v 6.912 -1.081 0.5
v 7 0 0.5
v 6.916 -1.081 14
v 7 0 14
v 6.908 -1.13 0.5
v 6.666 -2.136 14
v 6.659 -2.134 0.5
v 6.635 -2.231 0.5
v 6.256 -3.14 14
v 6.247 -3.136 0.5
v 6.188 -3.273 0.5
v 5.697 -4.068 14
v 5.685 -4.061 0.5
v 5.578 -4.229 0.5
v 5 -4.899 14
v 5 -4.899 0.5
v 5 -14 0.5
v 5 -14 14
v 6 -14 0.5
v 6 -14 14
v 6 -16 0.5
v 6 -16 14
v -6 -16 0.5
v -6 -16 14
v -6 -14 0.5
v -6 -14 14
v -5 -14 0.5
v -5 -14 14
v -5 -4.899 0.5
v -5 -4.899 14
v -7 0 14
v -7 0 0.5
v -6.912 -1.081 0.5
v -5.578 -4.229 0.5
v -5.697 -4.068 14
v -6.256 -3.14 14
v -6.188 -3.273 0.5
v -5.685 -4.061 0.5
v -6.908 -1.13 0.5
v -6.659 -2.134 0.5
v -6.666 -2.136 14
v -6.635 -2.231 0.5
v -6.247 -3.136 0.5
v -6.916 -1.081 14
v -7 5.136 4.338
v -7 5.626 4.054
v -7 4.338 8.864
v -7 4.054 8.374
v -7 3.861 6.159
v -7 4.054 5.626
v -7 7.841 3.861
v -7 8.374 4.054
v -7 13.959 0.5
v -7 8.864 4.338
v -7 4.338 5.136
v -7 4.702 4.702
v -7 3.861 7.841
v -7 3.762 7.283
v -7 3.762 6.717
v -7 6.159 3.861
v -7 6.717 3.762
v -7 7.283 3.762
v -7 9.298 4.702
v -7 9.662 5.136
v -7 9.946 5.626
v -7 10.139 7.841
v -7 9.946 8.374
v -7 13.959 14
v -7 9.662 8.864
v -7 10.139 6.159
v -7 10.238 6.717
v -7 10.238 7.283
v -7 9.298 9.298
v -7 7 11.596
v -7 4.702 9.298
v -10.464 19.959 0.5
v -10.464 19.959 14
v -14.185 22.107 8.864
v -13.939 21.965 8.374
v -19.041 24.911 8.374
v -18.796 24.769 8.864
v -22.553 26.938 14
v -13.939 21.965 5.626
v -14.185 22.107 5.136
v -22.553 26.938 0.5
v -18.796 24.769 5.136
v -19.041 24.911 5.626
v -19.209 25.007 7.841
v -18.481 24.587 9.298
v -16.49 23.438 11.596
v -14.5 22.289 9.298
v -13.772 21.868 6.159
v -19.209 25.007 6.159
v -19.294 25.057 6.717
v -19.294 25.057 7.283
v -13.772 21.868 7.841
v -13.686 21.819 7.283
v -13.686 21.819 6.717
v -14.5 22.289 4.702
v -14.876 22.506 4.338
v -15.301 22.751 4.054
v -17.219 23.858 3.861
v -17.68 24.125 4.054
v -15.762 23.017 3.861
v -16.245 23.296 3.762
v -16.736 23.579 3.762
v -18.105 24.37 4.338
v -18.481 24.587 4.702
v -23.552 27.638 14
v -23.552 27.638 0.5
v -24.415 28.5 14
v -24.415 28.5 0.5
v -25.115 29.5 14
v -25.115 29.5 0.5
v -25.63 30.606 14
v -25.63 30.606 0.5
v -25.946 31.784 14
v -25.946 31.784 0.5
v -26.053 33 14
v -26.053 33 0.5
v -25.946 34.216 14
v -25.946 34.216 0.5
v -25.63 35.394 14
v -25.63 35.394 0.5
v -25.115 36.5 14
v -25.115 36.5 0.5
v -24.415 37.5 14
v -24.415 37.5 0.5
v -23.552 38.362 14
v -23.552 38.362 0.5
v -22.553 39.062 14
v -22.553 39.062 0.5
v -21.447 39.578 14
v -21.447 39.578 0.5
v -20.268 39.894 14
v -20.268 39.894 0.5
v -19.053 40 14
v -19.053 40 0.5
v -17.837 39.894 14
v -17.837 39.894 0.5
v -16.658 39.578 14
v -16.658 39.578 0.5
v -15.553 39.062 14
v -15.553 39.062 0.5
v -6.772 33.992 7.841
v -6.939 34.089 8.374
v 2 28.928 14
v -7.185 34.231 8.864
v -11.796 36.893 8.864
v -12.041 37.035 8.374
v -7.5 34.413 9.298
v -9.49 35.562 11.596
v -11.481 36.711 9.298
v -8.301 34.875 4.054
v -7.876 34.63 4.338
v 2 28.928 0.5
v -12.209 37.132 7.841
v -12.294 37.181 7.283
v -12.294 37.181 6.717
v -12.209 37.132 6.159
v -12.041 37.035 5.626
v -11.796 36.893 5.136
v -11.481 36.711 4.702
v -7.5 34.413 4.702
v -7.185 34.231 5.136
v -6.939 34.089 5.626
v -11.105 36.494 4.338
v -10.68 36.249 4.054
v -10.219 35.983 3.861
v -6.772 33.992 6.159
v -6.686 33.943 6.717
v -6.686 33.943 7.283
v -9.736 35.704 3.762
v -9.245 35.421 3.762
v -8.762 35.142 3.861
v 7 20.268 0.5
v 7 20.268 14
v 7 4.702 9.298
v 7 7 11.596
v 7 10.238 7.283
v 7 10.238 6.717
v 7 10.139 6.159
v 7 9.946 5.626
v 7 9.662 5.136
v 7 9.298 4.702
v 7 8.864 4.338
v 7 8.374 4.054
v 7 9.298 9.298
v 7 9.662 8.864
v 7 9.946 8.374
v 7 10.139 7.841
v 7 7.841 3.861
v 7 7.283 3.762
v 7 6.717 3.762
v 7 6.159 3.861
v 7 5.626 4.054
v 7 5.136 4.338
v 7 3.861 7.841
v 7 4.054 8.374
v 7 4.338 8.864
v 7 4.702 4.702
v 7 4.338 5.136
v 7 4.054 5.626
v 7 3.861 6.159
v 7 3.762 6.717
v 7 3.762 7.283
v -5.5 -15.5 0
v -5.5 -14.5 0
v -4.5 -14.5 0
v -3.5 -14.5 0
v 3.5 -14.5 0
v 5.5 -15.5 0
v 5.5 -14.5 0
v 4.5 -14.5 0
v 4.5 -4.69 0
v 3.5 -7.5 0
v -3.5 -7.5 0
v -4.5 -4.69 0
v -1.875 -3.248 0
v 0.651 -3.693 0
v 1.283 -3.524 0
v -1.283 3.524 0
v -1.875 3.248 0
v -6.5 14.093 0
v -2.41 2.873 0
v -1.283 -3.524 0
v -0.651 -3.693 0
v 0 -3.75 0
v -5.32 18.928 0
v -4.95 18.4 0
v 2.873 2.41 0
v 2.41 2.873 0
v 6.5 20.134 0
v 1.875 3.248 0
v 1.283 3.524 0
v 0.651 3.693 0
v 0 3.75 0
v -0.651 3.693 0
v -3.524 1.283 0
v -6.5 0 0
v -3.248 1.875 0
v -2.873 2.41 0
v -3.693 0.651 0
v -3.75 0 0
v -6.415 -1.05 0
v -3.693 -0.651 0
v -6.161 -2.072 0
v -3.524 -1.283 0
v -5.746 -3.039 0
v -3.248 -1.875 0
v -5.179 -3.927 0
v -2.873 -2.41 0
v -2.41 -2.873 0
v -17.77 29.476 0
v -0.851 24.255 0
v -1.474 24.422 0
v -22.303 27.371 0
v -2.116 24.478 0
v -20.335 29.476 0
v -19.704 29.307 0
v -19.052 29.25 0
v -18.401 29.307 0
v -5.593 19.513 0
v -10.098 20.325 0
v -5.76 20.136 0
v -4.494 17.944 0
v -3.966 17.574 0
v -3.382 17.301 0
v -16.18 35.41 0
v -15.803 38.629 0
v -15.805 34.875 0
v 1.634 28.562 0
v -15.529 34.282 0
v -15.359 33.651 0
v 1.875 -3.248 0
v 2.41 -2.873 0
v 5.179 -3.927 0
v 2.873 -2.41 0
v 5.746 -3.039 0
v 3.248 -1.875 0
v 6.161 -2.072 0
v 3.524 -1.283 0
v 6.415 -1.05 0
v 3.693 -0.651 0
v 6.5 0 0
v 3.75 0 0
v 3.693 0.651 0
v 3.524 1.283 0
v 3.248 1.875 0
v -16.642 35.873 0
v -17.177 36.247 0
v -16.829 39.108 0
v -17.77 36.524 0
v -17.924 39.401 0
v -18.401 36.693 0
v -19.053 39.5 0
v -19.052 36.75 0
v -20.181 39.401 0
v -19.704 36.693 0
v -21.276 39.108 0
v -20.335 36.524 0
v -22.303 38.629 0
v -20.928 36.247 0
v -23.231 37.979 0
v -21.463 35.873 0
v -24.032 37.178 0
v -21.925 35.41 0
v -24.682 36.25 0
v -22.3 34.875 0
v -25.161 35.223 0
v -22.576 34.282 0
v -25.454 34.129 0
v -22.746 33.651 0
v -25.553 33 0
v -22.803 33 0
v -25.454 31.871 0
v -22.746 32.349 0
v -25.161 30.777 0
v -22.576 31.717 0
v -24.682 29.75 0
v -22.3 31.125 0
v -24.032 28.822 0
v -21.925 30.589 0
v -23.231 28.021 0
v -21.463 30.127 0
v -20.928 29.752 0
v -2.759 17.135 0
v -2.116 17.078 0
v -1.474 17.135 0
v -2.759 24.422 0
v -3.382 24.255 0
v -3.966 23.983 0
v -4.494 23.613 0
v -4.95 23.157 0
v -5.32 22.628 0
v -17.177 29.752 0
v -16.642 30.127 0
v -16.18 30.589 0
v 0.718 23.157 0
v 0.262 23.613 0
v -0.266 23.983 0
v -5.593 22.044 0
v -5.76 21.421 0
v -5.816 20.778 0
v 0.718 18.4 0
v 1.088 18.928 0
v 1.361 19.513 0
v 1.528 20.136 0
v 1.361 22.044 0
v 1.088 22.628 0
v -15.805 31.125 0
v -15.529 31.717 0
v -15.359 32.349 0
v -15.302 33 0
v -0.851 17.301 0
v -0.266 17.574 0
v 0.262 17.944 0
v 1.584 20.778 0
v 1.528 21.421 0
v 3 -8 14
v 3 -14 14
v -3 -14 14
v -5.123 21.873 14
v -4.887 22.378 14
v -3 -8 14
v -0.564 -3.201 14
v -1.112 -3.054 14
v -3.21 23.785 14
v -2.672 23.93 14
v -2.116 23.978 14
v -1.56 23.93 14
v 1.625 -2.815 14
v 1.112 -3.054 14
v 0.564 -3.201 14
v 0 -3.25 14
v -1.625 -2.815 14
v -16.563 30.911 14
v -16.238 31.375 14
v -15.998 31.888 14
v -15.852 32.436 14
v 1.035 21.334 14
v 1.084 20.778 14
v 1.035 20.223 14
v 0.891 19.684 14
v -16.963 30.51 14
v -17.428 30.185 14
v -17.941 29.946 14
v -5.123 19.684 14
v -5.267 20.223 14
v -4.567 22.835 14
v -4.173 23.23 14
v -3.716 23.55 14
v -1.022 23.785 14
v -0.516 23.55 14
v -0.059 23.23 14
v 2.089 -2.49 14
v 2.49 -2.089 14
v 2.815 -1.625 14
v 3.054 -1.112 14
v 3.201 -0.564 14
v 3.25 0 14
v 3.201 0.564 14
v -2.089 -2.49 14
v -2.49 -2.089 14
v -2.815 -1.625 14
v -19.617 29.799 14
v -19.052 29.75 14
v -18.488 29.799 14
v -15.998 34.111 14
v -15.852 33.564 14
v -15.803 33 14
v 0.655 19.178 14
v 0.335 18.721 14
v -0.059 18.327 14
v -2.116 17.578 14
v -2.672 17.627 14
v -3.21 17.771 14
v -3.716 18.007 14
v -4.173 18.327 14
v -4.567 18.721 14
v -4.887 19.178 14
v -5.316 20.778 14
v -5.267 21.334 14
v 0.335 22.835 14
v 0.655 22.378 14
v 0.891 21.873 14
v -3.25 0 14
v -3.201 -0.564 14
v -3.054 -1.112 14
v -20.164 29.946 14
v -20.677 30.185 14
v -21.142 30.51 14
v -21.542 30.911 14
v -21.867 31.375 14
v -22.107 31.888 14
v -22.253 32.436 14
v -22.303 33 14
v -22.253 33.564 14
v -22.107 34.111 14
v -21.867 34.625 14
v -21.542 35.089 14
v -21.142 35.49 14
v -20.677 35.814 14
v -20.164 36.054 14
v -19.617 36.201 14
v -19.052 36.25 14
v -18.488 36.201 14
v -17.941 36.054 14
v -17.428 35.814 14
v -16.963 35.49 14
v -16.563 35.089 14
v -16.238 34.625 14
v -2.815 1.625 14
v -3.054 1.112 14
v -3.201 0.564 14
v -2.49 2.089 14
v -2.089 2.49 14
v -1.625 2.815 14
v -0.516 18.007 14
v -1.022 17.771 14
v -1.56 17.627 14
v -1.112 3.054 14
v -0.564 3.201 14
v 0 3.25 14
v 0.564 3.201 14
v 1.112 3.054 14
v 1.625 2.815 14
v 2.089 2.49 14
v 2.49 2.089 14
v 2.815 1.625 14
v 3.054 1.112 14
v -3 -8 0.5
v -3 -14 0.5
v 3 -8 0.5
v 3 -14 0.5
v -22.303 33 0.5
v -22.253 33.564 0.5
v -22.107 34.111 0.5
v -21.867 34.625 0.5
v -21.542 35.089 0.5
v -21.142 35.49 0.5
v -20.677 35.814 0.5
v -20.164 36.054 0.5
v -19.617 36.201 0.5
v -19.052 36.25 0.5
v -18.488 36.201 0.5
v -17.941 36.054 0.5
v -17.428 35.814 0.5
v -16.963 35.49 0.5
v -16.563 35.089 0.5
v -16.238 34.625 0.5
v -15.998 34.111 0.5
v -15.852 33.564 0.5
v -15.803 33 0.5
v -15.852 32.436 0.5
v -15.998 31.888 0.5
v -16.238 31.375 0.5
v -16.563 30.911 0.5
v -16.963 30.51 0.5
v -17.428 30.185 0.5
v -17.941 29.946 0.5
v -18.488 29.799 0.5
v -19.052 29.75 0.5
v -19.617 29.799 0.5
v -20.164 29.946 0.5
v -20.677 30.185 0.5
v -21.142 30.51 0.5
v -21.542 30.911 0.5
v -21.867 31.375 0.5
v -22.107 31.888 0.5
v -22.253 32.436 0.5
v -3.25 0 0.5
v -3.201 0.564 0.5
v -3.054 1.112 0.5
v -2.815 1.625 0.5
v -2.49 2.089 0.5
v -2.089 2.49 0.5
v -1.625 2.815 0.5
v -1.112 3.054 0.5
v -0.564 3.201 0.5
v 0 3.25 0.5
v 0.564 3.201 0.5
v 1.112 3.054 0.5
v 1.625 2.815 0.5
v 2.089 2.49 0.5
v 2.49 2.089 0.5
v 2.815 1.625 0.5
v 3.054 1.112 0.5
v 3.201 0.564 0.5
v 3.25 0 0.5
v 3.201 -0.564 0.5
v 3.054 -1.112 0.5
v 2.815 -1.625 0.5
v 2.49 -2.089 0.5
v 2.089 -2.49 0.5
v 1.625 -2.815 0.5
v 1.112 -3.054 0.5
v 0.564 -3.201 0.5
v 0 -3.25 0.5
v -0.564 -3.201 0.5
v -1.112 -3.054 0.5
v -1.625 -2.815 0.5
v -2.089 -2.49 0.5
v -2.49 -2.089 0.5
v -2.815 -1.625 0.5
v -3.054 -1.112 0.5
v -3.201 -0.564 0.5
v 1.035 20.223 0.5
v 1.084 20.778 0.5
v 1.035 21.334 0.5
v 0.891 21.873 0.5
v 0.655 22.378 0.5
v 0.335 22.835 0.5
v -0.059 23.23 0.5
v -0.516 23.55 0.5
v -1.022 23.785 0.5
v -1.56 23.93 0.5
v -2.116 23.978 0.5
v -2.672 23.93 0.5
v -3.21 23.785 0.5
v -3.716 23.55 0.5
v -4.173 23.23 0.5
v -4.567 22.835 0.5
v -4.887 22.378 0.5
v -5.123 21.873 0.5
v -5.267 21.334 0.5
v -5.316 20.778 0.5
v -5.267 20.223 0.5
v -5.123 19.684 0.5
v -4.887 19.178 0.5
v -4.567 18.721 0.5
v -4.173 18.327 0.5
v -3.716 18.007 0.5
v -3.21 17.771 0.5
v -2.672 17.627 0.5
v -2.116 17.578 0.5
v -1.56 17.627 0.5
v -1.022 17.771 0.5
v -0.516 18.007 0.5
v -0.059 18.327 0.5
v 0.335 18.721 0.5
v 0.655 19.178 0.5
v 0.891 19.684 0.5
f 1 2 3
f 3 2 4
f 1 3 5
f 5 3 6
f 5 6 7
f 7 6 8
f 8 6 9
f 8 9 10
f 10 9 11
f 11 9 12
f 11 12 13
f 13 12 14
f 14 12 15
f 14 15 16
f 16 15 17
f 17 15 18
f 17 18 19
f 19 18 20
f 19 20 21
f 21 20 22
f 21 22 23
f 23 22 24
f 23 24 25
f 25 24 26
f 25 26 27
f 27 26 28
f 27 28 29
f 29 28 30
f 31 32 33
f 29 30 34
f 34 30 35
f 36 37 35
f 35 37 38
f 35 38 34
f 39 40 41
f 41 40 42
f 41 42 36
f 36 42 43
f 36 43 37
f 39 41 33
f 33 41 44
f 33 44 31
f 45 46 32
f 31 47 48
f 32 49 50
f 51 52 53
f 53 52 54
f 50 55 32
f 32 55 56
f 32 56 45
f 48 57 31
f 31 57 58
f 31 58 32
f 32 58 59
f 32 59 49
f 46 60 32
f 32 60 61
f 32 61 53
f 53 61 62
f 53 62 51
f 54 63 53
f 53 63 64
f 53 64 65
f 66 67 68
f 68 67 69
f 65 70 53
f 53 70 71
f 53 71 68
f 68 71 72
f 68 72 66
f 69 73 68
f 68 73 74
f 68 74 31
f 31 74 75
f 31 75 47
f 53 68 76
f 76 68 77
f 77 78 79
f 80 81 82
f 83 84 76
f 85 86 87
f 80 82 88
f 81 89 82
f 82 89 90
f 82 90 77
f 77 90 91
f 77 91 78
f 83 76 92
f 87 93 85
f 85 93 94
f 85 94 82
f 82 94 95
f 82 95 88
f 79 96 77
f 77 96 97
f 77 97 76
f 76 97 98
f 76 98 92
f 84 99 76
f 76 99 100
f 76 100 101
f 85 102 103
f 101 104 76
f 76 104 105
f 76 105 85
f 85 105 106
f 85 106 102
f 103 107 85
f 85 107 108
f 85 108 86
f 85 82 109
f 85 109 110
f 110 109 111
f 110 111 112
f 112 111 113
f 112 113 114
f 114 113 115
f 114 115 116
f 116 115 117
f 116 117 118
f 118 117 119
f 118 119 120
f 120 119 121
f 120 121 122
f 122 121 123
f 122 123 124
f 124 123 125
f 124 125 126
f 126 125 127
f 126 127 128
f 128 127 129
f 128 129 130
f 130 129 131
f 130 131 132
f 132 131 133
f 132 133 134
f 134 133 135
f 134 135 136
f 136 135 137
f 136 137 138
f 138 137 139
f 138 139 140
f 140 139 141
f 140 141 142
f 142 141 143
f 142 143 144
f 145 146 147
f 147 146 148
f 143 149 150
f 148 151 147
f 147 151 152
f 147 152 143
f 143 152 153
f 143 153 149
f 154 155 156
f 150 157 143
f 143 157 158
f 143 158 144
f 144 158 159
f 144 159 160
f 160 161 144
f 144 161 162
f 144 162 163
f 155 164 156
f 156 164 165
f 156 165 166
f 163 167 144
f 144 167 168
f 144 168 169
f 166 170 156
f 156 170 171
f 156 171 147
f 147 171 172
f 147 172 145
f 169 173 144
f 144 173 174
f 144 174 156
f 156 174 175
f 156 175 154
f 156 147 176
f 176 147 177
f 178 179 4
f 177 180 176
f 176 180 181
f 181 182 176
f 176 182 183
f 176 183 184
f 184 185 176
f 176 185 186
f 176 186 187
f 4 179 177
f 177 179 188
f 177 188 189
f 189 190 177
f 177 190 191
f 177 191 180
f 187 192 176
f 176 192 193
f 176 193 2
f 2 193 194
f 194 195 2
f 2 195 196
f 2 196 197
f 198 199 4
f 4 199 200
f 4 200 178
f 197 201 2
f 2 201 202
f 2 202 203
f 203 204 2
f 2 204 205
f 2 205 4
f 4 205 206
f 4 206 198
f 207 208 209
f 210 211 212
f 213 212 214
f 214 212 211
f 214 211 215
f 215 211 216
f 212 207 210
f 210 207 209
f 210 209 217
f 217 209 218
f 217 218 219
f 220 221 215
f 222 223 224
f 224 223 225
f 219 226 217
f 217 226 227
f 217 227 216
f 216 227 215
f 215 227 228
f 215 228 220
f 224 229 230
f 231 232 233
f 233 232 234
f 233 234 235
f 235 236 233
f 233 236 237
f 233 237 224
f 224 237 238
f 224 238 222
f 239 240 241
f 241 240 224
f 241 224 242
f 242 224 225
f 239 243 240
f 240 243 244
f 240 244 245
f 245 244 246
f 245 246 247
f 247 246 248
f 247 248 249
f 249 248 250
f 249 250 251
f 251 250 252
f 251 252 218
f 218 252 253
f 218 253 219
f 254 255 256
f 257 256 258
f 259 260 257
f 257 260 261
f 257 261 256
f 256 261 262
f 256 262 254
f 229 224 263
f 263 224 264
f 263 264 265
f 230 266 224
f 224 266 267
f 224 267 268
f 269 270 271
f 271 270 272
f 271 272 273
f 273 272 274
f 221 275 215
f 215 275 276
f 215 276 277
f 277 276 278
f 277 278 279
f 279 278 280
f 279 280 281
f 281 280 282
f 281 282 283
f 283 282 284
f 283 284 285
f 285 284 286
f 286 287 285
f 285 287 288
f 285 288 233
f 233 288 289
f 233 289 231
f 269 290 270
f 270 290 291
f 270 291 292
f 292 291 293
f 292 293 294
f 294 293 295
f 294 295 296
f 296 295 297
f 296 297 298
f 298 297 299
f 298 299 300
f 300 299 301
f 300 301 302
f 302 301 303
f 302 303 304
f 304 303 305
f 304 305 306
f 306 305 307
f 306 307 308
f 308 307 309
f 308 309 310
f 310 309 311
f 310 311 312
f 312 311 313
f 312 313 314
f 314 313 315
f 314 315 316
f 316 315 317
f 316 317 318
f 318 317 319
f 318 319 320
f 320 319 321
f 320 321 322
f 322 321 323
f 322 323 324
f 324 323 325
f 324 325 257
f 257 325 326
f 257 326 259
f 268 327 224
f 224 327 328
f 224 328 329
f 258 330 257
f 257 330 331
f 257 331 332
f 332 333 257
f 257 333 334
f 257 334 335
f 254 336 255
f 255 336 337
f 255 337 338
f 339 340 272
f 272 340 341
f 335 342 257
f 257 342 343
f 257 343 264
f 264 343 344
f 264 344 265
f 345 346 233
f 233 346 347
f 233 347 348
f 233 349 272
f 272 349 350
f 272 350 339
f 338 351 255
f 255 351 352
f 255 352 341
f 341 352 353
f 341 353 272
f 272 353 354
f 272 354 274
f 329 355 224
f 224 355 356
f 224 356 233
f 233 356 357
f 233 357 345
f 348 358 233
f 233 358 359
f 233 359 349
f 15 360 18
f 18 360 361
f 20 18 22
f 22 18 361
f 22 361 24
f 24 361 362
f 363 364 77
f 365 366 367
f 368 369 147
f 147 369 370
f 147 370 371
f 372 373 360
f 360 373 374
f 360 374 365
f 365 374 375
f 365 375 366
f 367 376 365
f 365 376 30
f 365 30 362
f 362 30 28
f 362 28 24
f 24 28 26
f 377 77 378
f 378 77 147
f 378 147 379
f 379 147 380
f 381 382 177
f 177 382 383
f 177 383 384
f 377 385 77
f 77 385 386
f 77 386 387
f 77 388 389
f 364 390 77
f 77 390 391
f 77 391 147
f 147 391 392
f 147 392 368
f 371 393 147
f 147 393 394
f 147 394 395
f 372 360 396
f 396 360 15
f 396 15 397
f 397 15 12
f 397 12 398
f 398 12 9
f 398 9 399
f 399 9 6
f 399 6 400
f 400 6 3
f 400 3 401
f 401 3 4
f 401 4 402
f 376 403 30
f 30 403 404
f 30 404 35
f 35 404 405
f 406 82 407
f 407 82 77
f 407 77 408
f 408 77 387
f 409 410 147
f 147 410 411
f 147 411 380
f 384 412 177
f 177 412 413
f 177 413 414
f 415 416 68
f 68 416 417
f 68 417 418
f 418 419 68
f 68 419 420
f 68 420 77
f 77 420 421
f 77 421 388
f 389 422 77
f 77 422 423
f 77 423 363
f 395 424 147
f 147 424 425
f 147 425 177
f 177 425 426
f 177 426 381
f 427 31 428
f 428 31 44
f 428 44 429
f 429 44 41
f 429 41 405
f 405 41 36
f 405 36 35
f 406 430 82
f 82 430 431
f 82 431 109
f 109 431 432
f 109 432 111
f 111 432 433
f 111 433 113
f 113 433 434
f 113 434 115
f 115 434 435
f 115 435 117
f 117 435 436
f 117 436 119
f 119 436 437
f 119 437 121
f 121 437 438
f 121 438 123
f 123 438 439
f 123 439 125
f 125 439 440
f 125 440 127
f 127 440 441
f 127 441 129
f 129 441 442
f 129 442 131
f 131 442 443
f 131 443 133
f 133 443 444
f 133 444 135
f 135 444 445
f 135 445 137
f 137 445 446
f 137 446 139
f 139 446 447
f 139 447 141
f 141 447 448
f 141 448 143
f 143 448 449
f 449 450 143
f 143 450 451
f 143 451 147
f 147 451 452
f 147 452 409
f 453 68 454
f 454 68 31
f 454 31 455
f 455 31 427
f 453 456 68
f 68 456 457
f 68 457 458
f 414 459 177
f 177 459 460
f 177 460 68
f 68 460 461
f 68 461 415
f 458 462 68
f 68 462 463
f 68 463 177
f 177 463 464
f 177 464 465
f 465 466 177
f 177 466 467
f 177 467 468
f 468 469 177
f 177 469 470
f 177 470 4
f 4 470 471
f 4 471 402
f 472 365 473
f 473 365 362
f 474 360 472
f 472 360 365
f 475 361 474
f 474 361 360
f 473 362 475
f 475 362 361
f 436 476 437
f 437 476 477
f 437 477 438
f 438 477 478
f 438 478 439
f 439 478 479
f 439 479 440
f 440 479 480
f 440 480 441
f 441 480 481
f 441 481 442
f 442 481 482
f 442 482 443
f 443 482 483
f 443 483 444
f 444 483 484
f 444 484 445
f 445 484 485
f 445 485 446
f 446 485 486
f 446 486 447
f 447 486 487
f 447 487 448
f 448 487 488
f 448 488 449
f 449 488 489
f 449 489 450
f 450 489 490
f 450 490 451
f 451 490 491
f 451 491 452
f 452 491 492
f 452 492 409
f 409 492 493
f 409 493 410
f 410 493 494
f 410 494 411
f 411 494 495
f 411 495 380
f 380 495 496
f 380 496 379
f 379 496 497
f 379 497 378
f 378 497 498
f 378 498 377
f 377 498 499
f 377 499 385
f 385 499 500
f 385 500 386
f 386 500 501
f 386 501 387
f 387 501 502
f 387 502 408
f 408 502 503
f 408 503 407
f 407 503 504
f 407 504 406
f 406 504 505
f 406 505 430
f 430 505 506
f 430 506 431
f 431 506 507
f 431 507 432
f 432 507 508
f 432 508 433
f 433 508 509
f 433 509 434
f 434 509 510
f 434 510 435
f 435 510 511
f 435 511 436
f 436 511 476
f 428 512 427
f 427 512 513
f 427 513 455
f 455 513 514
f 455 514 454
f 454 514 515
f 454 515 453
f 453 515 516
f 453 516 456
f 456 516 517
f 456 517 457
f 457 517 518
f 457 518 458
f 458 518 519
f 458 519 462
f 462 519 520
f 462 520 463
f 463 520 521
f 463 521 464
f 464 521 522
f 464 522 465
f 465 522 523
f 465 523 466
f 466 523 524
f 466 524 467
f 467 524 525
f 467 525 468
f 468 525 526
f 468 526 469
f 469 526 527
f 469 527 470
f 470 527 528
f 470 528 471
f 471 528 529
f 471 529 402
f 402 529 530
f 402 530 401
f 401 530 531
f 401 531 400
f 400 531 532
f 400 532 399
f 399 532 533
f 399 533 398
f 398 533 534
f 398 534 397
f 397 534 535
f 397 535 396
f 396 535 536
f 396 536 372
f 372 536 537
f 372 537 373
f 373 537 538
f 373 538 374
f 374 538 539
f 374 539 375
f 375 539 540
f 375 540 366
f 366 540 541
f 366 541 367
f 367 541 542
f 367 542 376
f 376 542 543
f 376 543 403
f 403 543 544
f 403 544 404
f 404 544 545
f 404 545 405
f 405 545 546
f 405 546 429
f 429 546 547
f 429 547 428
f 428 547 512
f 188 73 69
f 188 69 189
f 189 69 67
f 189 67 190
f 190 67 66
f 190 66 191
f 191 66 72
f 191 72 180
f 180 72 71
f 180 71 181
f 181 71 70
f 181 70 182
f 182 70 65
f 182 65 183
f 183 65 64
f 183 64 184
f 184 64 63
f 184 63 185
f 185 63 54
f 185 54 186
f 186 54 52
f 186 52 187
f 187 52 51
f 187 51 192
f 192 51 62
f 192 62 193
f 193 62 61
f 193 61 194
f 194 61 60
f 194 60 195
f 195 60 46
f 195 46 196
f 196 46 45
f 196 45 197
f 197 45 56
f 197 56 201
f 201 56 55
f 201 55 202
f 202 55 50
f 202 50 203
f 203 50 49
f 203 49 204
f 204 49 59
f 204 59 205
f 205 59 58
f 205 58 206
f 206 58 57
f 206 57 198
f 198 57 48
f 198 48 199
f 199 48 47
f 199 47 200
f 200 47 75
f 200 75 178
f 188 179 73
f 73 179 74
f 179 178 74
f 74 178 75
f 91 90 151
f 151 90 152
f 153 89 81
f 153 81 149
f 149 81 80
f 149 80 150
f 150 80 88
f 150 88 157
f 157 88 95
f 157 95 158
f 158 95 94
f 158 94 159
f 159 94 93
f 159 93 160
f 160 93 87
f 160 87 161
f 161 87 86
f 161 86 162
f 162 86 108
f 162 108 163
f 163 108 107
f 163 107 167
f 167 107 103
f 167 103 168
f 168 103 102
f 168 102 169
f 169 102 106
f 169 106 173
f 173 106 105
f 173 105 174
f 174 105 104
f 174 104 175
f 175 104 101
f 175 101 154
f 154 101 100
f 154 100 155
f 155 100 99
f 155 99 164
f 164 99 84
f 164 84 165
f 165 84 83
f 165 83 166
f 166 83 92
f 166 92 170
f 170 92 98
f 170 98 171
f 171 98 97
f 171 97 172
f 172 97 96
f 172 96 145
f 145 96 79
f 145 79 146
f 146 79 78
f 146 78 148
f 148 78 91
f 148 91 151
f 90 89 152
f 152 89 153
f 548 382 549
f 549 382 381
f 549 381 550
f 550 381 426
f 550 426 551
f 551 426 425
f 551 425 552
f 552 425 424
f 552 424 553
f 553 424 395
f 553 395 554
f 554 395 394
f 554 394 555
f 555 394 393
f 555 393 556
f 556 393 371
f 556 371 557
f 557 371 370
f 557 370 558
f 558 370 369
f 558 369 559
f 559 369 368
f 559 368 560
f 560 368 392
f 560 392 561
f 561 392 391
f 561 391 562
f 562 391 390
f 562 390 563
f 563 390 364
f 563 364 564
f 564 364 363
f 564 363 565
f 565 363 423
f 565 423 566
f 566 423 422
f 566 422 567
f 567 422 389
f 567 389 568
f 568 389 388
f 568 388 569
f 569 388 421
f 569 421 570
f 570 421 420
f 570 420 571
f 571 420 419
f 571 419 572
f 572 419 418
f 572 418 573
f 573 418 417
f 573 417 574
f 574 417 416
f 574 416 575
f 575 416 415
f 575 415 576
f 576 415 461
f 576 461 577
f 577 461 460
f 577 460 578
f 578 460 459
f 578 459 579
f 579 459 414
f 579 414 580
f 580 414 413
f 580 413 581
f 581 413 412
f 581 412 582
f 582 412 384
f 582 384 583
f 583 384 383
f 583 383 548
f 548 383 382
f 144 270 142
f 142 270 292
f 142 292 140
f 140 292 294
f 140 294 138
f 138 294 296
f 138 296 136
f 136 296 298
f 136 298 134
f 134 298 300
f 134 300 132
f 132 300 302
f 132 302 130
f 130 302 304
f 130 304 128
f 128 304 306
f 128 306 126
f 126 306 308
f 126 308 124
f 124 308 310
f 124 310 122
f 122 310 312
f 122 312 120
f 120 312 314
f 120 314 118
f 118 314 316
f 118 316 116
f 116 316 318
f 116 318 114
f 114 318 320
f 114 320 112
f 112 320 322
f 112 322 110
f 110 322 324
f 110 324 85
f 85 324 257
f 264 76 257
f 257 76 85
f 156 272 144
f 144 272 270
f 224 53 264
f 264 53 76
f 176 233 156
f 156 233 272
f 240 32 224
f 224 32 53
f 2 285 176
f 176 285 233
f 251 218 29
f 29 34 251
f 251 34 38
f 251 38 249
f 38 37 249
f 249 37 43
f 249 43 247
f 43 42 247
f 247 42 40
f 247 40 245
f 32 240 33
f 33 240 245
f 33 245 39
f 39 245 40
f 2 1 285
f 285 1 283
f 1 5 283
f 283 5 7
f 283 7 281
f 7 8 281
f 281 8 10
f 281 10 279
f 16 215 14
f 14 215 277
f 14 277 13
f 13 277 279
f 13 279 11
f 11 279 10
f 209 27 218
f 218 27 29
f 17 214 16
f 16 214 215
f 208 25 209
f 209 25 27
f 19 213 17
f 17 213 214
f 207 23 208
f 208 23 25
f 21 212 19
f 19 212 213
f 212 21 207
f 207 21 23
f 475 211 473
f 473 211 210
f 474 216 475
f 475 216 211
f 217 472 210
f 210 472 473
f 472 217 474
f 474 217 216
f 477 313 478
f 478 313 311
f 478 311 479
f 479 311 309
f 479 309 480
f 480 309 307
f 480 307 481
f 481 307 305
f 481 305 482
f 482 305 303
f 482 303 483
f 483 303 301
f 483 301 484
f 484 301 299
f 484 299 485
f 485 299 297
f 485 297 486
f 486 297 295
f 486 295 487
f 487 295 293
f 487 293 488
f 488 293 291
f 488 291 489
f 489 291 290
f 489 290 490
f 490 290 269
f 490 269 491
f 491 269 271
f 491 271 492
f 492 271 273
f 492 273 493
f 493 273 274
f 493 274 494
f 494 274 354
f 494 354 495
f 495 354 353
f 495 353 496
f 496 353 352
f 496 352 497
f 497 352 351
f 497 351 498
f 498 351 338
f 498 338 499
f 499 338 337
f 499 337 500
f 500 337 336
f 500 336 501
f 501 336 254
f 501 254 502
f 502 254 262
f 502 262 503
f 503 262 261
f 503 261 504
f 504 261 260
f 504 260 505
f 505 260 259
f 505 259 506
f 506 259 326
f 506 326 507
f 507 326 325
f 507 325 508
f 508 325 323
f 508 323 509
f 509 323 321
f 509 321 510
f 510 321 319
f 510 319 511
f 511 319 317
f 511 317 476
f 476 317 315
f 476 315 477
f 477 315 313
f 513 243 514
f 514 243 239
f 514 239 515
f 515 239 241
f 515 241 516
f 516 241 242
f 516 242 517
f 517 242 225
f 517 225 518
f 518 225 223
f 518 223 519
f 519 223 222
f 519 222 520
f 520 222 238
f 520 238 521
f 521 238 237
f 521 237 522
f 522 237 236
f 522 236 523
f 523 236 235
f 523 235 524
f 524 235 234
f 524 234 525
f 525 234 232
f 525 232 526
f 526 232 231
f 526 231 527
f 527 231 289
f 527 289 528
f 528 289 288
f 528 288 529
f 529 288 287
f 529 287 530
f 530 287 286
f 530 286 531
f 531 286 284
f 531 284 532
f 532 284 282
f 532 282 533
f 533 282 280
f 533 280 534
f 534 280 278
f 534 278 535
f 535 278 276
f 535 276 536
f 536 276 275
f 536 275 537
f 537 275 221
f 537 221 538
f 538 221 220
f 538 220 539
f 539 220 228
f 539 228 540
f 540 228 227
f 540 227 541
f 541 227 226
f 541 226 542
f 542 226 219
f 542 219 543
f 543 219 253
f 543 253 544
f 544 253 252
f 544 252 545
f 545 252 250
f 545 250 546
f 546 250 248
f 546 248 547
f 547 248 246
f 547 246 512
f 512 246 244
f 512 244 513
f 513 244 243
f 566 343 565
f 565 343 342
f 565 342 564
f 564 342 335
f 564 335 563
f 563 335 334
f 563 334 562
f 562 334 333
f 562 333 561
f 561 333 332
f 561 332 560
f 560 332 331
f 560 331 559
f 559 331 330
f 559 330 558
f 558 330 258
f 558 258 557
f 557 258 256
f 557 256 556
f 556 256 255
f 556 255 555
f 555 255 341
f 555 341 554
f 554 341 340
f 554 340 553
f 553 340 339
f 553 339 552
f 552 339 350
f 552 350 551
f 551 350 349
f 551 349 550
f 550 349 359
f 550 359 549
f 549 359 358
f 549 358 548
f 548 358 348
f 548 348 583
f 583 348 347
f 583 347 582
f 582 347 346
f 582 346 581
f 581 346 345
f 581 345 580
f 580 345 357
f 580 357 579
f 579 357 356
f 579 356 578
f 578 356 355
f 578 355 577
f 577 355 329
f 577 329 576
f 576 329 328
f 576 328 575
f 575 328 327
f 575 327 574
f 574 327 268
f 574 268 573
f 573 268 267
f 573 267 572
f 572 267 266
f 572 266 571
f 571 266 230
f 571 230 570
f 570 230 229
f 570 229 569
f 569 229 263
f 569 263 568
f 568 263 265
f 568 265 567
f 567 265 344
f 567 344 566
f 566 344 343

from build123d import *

# Parameters (mm, degrees)
SKETCH1_W           = 6
SKETCH1_H           = 6
BOSS_EXTRUDE1_DEPTH = 14
HOLE2_D             = 6.5
HOLE1_D             = 6.5
CUT_EXTRUDE2_DEPTH  = 47.465040622
CUT_EXTRUDE1_DEPTH  = 46.814563472
SKETCH8_R           = 3.2
CUT_EXTRUDE3_DEPTH  = 50.746716719
CHAMFER1_SIZE       = 0.5


with BuildPart() as part:
    # Sketch1 → Boss-Extrude1 (new body)
    with BuildSketch(Plane.XY.offset(14)):
        with BuildLine():
            Line((7, 0), (7, 20.267949192))
            Line((7, 20.267949192), (2, 28.92820323))
            Line((2, 28.92820323), (-15.552558883, 39.062177826))
            ThreePointArc((-15.552558883, 39.062177826), (-25.11473671, 36.5), (-22.552558883, 26.937822174))
            Line((-22.552558883, 26.937822174), (-10.464101615, 19.958548116))
            Line((-10.464101615, 19.958548116), (-7, 13.958548116))
            Line((-7, 13.958548116), (-7, 0))
            ThreePointArc((-7, 0), (-6.480740698, -2.645751311), (-5, -4.898979486))
            Line((-5, -4.898979486), (-5, -14))
            Line((-5, -14), (-6, -14))
            Line((-6, -14), (-6, -16))
            Line((-6, -16), (6, -16))
            Line((6, -16), (6, -14))
            Line((6, -14), (5, -14))
            Line((5, -14), (5, -4.898979486))
            ThreePointArc((5, -4.898979486), (6.480740698, -2.645751311), (7, 0))
        make_face()
        with Locations((0, -11)):
            Rectangle(SKETCH1_W, SKETCH1_H, mode=Mode.SUBTRACT)
    extrude(amount=-BOSS_EXTRUDE1_DEPTH)

    # Hole2 (through all)
    with Locations(Plane(origin=(0, 0, 0), x_dir=(-1, 0, 0), z_dir=(0, 0, -1))):
        with Locations((19.0525, 32.999898011)):
            Hole(HOLE2_D / 2)

    # Hole1 (through all)
    with Locations(Plane(origin=(0, 0, 0), x_dir=(-1, 0, 0), z_dir=(0, 0, -1))):
        with Locations((0, 0)):
            Hole(HOLE1_D / 2)

    # Sketch3 → Cut-Extrude2 (cut, through all)
    with BuildSketch(Plane.ZY.offset(7)):
        with BuildLine():
            Line((9.298097039, 4.701902961), (11.596194078, 7))
            Line((11.596194078, 7), (9.298097039, 9.298097039))
            ThreePointArc((9.298097039, 9.298097039), (3.75, 7), (9.298097039, 4.701902961))
        make_face()
    extrude(amount=-CUT_EXTRUDE2_DEPTH, mode=Mode.SUBTRACT)

    # Sketch2 → Cut-Extrude1 (cut, through all)
    with BuildSketch(Plane(origin=(6.026279442, 10.437822174, 0), x_dir=(0.8660254037844398, -0.49999999999999806, 0), z_dir=(-0.499999999999998, -0.8660254037844397, 0))):
        with BuildLine():
            Line((-25.999898011, 11.596194078), (-28.29799505, 9.298097039))
            ThreePointArc((-28.29799505, 9.298097039), (-25.999898011, 3.75), (-23.701800972, 9.298097039))
            Line((-23.701800972, 9.298097039), (-25.999898011, 11.596194078))
        make_face()
    extrude(amount=-CUT_EXTRUDE1_DEPTH, mode=Mode.SUBTRACT)

    # Sketch8 → Cut-Extrude3 (cut, through all)
    with BuildSketch(Plane.XY.offset(14)):
        with Locations((-2.116025404, 20.778312164)):
            Circle(SKETCH8_R)
    extrude(amount=-CUT_EXTRUDE3_DEPTH, mode=Mode.SUBTRACT)

    # Chamfer1
    chamfer1_edges = [part.edges().sort_by_distance(p)[0] for p in [
        (4.5, 24.598076211, 0),
        (-6.776279442, 33.995190528, 0),
        (-25.11473671, 36.5, 0),
        (-16.508330249, 23.448185145, 0),
        (-8.732050808, 16.958548116, 0),
        (-7, 6.979274058, 0),
        (-6.480740698, -2.645751311, 0),
        (-5, -9.449489743, 0),
        (-5.5, -14, 0),
        (-6, -15, 0),
        (6.480740698, -2.645751311, 0),
        (0, -16, 0),
        (-3, -11, 0),
        (0, -8, 0),
        (3, -11, 0),
        (0, -14, 0),
        (6, -15, 0),
        (5.5, -14, 0),
        (5, -9.449489743, 0),
        (-22.3025, 32.999898011, 0),
        (-3.25, 0, 0),
        (7, 10.133974596, 0),
        (-5.316025404, 20.778312164, 0),
    ]]
    chamfer(chamfer1_edges, length=CHAMFER1_SIZE)


solid = part.part
